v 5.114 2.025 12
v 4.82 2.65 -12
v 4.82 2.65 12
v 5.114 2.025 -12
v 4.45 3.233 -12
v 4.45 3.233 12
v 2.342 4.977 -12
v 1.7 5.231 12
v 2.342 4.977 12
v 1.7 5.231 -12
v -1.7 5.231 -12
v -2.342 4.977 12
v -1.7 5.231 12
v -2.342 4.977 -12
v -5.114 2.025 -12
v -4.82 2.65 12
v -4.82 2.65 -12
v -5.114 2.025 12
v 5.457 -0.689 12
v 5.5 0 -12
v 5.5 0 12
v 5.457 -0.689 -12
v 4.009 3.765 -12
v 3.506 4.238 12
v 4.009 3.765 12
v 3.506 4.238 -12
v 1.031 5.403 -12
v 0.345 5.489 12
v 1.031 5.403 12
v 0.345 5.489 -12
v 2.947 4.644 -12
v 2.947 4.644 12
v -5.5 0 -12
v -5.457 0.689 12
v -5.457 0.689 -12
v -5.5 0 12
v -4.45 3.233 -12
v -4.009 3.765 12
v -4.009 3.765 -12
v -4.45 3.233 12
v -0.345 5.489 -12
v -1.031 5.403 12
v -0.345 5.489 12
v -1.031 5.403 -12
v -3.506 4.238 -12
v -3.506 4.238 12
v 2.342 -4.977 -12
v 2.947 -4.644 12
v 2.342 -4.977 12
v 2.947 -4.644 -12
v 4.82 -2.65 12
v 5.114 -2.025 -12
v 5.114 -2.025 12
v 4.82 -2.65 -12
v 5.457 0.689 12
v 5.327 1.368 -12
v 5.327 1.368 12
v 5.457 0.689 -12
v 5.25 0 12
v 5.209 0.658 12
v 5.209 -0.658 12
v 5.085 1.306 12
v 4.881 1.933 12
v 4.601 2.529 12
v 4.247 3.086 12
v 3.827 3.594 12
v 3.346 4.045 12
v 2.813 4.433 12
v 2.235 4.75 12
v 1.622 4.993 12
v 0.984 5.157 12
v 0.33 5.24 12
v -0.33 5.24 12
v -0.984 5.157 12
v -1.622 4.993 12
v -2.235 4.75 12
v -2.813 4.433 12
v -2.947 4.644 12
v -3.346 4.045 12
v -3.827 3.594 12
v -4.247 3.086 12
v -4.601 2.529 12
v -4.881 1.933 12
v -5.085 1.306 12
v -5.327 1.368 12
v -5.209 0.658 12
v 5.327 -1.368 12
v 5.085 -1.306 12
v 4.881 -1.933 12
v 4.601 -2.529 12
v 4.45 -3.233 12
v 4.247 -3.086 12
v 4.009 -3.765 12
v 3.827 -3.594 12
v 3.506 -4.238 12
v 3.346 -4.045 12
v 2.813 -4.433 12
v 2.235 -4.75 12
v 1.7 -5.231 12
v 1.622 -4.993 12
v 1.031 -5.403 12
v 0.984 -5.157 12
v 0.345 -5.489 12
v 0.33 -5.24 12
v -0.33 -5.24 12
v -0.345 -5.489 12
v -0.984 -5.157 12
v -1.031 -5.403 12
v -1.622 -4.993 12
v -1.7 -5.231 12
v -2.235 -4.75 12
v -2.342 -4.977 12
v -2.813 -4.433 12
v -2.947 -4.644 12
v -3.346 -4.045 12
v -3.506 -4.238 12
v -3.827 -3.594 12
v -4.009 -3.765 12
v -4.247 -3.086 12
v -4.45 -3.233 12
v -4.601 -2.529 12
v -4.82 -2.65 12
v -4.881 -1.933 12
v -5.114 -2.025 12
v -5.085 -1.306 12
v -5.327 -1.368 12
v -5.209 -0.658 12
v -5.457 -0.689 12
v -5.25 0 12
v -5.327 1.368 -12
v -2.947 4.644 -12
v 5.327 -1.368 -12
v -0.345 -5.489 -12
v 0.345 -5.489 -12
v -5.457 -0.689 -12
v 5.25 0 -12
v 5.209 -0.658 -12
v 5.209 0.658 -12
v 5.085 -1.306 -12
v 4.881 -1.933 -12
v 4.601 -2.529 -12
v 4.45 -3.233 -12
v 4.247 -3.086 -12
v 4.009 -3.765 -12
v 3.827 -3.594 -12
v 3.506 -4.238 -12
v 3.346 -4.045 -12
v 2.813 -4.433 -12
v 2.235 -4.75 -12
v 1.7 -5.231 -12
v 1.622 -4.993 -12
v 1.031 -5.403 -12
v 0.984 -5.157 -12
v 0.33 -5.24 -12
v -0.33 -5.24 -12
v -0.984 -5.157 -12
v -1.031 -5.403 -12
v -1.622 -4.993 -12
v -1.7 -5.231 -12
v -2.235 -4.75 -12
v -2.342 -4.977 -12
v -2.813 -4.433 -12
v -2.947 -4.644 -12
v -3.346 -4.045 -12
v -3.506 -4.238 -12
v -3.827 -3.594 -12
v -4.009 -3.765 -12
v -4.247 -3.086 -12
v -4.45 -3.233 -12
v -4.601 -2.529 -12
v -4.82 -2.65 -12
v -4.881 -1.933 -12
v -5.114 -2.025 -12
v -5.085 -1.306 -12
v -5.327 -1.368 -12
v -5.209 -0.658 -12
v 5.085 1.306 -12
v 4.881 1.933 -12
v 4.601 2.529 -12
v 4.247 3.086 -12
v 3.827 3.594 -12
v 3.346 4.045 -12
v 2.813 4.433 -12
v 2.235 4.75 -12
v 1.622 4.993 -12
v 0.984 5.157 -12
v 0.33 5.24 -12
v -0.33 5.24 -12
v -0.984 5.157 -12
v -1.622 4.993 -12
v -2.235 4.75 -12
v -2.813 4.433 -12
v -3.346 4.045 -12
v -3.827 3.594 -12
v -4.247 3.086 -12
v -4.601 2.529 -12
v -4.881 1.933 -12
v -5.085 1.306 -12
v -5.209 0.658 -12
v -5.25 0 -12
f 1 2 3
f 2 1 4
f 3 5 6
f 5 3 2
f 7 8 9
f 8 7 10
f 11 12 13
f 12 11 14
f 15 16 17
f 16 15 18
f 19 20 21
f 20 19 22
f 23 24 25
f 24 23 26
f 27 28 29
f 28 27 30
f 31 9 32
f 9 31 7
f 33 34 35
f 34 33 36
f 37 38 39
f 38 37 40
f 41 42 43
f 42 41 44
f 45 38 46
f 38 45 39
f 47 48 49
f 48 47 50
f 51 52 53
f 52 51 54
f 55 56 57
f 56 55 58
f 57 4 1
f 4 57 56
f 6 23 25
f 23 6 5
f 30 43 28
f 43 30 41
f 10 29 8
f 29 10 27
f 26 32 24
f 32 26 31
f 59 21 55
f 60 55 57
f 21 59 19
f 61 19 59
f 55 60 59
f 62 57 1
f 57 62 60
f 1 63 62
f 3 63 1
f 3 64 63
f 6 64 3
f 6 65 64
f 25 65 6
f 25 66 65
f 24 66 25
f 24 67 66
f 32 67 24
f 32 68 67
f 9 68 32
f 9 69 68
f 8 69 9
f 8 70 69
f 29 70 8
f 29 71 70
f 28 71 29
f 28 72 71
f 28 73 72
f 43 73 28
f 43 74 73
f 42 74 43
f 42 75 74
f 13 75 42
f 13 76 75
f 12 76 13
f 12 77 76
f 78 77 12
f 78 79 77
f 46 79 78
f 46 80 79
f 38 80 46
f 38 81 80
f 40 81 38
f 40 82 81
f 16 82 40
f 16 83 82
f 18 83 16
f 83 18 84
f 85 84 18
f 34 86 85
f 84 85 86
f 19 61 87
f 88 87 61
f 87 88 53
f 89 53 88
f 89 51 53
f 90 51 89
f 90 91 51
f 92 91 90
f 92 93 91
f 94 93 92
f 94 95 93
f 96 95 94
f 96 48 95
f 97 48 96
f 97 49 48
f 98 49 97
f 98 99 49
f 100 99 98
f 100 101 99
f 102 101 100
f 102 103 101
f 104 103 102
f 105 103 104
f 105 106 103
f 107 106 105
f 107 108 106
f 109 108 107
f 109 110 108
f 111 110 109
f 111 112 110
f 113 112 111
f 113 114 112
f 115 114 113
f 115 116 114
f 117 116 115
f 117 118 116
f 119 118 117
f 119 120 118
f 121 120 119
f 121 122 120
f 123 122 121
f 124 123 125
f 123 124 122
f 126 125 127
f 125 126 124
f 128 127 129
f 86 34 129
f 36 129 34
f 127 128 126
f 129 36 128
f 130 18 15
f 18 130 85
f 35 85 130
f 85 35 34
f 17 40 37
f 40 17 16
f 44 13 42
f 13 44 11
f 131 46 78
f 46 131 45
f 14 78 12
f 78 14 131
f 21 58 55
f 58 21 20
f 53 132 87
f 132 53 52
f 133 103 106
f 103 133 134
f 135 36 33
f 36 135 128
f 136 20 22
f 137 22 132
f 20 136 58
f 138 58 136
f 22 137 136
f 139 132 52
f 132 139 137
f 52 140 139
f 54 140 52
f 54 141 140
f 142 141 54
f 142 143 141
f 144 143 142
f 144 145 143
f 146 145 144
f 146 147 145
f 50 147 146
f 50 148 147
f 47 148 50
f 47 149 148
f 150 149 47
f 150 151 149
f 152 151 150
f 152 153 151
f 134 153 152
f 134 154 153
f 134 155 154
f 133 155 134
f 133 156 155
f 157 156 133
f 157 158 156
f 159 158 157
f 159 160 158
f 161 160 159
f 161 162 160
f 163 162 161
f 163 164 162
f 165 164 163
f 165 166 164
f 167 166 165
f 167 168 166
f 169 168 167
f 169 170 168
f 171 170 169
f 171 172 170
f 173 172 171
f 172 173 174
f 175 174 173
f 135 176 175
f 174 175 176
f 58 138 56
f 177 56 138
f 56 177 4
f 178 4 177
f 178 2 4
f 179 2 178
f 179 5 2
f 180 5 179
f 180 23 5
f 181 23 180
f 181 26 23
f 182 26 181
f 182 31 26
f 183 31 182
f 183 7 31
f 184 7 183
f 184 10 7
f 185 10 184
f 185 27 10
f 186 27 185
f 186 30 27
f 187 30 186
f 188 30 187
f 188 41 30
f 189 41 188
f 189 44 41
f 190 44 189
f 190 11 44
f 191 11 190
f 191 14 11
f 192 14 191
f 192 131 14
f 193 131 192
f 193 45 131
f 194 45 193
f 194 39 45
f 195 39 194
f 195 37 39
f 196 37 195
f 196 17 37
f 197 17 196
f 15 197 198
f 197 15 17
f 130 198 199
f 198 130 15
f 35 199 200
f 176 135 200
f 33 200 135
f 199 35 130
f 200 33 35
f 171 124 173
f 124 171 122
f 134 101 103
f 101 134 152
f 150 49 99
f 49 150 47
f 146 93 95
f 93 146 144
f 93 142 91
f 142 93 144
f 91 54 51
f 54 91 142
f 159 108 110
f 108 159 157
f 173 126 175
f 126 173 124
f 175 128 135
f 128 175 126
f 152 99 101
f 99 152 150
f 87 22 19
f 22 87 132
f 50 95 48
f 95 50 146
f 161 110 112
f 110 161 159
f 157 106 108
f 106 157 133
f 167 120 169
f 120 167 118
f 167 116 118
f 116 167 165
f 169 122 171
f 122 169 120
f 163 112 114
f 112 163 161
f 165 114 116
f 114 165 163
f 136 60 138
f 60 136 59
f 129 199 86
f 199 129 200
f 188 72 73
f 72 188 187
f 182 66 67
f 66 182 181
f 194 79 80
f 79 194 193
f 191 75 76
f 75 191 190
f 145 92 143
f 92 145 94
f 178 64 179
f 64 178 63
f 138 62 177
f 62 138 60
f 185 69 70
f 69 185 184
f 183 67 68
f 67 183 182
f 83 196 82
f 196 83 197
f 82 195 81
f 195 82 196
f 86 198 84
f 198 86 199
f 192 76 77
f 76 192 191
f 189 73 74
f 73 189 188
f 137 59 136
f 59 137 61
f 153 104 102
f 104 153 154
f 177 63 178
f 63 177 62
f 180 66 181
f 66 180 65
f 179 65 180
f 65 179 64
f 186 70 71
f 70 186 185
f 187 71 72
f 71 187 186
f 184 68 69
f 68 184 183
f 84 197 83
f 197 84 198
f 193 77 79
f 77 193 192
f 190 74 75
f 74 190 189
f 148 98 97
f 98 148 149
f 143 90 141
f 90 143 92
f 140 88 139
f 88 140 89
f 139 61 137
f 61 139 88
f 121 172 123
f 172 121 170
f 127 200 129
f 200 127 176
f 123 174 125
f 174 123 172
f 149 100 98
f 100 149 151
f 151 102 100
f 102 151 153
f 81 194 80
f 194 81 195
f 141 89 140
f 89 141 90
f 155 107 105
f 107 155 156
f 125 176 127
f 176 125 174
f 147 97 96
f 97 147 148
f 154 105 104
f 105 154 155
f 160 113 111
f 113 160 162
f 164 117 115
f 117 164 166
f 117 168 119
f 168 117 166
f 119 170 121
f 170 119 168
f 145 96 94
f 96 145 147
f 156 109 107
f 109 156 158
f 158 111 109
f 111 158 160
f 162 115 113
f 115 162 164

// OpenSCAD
$fn = 50;


difference() {
	union() {
		translate(v = [0, 0, -12.0000000000]) {
			cylinder(h = 24, r = 5.5000000000);
		}
	}
	union() {
		translate(v = [0, 0, -100.0000000000]) {
			cylinder(h = 200, r = 5.2500000000);
		}
	}
}
